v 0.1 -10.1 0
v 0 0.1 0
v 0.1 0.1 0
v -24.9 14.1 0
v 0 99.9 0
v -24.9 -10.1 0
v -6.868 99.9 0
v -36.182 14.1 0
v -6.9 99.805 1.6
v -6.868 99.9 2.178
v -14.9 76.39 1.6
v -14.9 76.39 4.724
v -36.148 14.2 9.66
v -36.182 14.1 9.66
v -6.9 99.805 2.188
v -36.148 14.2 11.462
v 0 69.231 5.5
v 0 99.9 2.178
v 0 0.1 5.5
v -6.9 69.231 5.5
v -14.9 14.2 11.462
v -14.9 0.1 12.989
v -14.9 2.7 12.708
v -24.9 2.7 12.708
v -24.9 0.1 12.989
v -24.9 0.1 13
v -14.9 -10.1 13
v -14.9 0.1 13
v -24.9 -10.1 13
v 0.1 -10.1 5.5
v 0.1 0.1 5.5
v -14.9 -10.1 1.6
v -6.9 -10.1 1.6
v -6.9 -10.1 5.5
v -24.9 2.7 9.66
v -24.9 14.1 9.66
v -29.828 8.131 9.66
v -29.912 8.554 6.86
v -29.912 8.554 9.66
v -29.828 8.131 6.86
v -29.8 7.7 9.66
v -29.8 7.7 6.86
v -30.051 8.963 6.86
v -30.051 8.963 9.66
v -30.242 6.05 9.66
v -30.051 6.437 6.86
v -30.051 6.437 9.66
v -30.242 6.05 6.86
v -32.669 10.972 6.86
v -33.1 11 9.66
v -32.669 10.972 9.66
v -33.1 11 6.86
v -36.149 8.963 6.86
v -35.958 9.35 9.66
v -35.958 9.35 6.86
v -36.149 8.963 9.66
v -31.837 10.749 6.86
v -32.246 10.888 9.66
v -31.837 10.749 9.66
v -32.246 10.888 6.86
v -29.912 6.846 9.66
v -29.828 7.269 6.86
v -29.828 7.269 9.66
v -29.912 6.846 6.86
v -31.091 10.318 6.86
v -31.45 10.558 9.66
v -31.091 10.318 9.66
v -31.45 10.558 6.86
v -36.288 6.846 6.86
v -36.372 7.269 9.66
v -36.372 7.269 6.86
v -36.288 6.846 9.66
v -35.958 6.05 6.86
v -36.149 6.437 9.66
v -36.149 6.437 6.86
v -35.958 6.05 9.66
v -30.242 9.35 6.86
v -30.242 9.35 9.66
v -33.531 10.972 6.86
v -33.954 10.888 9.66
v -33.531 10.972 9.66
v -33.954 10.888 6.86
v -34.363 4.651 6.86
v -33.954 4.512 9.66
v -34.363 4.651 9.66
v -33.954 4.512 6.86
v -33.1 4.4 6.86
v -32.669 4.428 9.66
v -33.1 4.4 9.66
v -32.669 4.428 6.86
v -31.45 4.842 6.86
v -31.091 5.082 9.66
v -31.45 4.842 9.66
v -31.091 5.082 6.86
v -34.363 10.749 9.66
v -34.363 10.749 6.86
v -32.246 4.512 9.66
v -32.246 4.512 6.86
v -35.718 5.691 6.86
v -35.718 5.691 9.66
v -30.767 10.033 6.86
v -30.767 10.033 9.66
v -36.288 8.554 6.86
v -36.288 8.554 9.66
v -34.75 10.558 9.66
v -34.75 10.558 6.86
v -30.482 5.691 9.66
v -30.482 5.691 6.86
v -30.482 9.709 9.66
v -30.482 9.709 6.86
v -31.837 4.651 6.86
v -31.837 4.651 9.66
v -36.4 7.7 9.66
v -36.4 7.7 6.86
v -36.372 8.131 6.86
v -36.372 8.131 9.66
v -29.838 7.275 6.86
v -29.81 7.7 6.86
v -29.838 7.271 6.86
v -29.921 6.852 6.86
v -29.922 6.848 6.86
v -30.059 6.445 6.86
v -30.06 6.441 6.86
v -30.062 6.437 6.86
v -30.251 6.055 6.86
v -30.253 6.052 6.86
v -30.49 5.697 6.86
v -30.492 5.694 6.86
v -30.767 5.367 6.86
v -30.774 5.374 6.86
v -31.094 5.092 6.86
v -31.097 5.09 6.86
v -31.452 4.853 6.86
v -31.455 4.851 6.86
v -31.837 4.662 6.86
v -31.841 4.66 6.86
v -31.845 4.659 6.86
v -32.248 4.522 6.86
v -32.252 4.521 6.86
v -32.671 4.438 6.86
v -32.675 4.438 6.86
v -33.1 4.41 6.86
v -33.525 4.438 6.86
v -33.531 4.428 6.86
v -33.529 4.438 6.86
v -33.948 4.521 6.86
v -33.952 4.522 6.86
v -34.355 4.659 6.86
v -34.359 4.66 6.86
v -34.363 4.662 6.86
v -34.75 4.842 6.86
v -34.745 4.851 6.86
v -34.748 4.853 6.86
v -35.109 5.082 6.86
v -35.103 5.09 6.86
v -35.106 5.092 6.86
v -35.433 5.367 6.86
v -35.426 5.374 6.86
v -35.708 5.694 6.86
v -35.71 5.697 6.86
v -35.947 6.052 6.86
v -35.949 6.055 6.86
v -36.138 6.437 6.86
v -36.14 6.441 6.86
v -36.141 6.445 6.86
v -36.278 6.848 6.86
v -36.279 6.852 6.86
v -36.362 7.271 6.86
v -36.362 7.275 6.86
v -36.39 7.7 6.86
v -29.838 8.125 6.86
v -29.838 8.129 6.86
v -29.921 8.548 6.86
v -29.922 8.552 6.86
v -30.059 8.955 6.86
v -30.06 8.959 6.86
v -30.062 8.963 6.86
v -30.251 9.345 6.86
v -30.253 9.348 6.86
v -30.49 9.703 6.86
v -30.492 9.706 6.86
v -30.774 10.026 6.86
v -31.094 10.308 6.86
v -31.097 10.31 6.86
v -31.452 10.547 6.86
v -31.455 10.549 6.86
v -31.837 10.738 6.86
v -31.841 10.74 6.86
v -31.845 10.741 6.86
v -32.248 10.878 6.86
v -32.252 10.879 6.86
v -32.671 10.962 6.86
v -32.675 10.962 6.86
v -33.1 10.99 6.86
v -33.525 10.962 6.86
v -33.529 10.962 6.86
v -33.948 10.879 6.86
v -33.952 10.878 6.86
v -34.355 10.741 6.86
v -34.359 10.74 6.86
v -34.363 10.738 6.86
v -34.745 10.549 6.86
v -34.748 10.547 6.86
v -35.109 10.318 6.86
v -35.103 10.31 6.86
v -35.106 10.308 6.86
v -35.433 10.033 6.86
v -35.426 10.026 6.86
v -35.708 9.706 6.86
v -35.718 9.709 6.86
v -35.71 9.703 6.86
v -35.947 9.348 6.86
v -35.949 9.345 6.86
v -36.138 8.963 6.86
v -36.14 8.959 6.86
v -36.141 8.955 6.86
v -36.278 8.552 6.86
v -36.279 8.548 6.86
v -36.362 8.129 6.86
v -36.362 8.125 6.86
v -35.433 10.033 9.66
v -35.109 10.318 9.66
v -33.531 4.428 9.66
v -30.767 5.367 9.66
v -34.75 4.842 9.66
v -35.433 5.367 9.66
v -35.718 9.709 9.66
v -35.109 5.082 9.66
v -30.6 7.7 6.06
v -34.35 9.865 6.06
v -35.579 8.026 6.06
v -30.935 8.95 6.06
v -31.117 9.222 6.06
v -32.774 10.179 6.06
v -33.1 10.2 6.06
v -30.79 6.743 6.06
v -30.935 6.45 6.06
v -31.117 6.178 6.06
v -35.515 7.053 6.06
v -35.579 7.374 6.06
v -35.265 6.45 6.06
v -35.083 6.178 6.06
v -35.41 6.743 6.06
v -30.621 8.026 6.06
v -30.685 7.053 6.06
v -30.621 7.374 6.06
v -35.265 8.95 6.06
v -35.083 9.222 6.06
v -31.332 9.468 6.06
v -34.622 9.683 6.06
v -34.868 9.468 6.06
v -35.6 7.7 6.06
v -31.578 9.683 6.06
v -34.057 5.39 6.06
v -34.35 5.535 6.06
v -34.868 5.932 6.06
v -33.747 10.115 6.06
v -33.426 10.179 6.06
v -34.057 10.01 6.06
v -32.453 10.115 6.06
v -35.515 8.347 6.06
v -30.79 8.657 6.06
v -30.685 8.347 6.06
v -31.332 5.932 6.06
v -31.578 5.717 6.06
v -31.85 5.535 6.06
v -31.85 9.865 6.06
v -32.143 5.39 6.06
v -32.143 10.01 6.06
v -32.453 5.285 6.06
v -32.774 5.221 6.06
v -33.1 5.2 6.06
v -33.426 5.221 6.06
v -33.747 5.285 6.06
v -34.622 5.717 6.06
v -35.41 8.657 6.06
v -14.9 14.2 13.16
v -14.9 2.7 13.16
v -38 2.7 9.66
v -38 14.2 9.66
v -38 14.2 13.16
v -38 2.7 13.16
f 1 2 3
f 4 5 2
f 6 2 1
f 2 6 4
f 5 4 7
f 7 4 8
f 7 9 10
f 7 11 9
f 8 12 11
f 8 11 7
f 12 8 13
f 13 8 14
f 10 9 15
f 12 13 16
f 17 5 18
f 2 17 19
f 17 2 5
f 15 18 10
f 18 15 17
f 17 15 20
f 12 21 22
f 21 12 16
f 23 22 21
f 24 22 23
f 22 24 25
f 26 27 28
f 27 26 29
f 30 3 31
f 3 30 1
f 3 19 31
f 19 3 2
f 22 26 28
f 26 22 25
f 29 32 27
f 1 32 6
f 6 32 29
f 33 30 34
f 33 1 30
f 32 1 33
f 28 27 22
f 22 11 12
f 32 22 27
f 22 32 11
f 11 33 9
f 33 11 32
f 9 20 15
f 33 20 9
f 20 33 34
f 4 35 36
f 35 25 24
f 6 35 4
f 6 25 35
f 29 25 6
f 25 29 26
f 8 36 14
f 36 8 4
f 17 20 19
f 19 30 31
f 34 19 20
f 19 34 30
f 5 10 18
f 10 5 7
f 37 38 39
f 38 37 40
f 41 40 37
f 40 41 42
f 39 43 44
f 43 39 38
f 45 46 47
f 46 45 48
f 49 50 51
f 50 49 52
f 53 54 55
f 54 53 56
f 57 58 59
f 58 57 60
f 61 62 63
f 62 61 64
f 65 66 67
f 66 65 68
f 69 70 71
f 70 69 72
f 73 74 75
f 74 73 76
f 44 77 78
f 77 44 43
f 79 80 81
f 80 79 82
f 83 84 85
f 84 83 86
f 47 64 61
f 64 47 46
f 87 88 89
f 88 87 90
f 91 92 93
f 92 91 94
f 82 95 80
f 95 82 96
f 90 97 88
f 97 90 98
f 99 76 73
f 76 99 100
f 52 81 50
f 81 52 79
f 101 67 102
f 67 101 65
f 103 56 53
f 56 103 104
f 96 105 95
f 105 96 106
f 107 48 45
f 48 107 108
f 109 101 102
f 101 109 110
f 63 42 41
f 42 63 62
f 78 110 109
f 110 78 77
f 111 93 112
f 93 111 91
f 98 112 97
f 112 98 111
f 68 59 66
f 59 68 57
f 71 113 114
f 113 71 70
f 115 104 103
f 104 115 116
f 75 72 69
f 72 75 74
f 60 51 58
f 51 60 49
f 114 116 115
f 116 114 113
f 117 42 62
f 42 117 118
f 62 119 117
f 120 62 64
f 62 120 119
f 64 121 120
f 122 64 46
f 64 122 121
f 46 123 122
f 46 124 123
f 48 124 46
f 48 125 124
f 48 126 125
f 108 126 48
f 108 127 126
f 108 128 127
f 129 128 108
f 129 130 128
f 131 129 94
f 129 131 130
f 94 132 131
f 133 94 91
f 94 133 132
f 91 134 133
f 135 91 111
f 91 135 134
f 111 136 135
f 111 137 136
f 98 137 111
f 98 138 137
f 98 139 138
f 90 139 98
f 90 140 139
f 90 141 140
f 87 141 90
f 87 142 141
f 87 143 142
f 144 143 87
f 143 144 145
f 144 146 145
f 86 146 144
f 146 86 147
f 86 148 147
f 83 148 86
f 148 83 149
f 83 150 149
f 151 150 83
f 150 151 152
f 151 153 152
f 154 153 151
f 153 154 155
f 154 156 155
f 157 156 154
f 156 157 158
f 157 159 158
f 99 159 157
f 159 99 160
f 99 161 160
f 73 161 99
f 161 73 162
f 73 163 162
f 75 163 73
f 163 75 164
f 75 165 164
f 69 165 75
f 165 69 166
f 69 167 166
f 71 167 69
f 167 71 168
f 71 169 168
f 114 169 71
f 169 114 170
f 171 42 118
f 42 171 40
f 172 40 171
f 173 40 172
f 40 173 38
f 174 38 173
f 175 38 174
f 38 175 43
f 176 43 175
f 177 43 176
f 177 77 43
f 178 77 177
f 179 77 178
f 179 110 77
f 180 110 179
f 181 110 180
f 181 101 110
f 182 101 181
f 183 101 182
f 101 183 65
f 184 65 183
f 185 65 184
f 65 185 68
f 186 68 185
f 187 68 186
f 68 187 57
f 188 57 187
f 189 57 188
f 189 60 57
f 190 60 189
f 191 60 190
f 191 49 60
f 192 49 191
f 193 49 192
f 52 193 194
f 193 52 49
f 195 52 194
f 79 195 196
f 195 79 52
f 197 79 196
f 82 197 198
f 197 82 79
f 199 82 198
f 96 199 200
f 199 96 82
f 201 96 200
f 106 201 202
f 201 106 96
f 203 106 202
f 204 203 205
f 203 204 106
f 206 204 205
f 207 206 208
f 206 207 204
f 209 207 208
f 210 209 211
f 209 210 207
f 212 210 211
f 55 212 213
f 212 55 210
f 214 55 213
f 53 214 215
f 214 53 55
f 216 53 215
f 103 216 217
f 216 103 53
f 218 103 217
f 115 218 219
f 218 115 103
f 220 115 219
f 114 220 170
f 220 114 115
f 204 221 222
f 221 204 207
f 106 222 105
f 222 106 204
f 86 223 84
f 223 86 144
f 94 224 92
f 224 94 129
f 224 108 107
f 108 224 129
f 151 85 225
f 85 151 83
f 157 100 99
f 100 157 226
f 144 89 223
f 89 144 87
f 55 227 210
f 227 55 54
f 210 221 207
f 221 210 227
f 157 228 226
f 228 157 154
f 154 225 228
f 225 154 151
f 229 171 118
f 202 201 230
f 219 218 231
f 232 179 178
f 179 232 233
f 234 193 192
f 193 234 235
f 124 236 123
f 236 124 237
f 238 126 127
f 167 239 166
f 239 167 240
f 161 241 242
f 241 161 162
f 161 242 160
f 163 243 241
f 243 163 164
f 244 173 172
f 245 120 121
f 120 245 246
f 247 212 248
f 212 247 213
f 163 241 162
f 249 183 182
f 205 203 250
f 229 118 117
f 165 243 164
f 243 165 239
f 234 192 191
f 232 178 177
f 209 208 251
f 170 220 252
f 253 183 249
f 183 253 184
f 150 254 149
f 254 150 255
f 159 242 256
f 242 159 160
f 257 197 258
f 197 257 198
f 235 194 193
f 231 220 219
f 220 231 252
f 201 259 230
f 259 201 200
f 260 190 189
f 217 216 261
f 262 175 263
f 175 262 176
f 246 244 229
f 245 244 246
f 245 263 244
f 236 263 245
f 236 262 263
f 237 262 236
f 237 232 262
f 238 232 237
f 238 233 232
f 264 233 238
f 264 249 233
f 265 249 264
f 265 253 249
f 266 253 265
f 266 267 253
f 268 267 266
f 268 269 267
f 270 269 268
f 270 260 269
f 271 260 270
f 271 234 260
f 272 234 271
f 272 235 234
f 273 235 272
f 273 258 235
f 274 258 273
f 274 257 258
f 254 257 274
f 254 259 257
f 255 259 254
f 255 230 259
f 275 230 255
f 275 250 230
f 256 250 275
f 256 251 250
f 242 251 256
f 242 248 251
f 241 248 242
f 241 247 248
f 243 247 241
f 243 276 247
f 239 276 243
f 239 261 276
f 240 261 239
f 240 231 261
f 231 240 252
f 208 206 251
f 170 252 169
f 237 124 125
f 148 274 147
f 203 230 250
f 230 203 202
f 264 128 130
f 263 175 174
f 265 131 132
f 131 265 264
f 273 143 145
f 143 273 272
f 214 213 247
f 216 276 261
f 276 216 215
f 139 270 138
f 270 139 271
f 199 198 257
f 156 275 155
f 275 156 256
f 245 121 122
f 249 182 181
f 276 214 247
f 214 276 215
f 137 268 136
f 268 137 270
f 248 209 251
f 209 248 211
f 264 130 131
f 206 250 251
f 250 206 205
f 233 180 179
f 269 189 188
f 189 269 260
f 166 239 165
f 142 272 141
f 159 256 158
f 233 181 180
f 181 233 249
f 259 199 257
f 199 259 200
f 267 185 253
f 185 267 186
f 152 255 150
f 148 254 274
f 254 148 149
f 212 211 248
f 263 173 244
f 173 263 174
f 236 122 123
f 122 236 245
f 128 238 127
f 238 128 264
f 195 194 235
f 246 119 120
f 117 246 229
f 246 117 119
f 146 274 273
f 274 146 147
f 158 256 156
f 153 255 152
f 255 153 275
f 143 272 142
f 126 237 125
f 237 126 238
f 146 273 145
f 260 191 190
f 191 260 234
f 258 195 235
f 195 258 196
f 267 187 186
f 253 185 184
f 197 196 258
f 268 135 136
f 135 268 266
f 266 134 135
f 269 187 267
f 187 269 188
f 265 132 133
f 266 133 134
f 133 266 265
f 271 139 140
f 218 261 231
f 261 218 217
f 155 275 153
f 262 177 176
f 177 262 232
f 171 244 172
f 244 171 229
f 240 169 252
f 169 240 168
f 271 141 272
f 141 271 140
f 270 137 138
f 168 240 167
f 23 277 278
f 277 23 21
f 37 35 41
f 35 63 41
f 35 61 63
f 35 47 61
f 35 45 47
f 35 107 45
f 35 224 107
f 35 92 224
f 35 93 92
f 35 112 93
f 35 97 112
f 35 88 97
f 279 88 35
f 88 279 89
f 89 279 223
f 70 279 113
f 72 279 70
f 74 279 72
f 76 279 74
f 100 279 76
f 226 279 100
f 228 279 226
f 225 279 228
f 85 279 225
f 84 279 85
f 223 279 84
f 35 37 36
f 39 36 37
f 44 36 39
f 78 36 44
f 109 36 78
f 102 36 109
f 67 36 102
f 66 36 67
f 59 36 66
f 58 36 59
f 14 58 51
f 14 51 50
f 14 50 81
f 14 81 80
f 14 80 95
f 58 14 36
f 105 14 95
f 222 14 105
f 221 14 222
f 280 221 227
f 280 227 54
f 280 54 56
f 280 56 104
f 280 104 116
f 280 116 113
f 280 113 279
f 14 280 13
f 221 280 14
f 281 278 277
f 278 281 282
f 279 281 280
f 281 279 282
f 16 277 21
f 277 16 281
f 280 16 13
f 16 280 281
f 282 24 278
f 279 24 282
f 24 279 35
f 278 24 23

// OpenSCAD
// =====================================================================
//  Korek narożny pod drzwi prysznicowe – bryła + 2 regulowane wycięcia
//  Układ: A = (0,0) kąt prosty, AB wzdłuż X, AC wzdłuż Y, Z w górę
// =====================================================================

// ---------------- BRYŁA ----------------
a = 41;   // długość krawędzi AB (oś X) [mm]
b = 120;   // długość krawędzi AC (oś Y) [mm]
H = 13;    // wysokość nad krawędzią AB [mm]
g = 10;   // dlugosc korka

// ---------------- PODGLĄD ----------------
pokaz_wyciecia = true;  // true = wycięcia podświetlone na różowo w podglądzie (F5)
                        // w renderze (F6) i eksporcie STL podświetlenie znika
luz = 0.2;              // tolerancja dodawana do szerokości i długości wycięć [mm]

// ---------------- WYCIĘCIE 1: szyba wchodząca od góry ----------------
w1_wlaczone = true;
w1_poz   = [7, -1-g, 1.6];      // [x, y, z] dolnego narożnika wycięcia
                            //   x = odległość od krawędzi AC
                            //   z = dno szczeliny (H - z = głębokość wejścia szyby)
w1_wym   = [7.8, b + 2+g, 20];  // [grubość szyby, długość, wysokość]
                            //   długość i wysokość celowo "na zapas" poza bryłę
w1_obrot = 0;               // obrót wokół osi Z względem narożnika [°]

// ---------------- WYCIĘCIE 2: od krawędzi AB ----------------
// Wcięcie typu "U" wchodzące od krawędzi AB (y = 0) w głąb bryły.
w2_wlaczone = true;
w2_poz   = [25, -1-g, -1];    // [x, y, z] dolnego narożnika wycięcia
                            //   y = -1, żeby wycięcie wychodziło poza krawędź
w2_wym   = [20, 15+g, H + 2];   // [szerokość, głębokość w bryłę + 1, wysokość]
                            //   wysokość H+2 = przelotowo; zmniejsz dla wcięcia częściowego
w2_obrot = 0;               // obrót wokół osi Z względem narożnika [°]

// -- wyciecie 3 na koło
w3_wlaczone = true;
w3_poz   = [0, 0-g, 5.5];      // [x, y, z] dolnego narożnika wycięcia
                            //   x = odległość od krawędzi AC
                            //   z = dno szczeliny (H - z = głębokość wejścia szyby)
w3_wym   = [7.8, b + 2+g, 20];  // [grubość szyby, długość, wysokość]
                            //   długość i wysokość celowo "na zapas" poza bryłę
w3_obrot = 0;               // obrót wokół osi Z względem narożnika [°]


// w4 - sciecie z przodu
w4_wlaczone = true;
w4_poz   = [0, b-20, -1];    // [x, y, z] dolnego narożnika wycięcia
                            //   y = -1, żeby wycięcie wychodziło poza krawędź
w4_wym   = [20, 20, H + 2];   // [szerokość, głębokość w bryłę + 1, wysokość]
                            //   wysokość H+2 = przelotowo; zmniejsz dla wcięcia częściowego
w4_obrot = 0;               // obrót wokół osi Z względem narożnika [°]


// ---------------- NADLOZENIA ----------------

// n1 - wydluzenie do srodka wneki
n1_wlaczone = true;
n1_poz   = [0, 0-g, 0];      // [x, y, z] dolnego narożnika wycięcia
                            //   x = odległość od krawędzi AC
                            //   z = dno szczeliny (H - z = głębokość wejścia szyby)
n1_wym   = [a, g, H];  // [grubość szyby, długość, wysokość]
                            //   długość i wysokość celowo "na zapas" poza bryłę
n1_obrot = 0;               // obrót wokół osi Z względem narożnika [°]

// --------------- ZACZEP ---------------------

z_wlaczone = true;
z_wym      = [23.1, 11.5, 3.5];   // [X, Y, Z] prostopadłościanu [mm]
z_cyl_d    = 6.6;             // średnica cylindra [mm]
z_cyl_l    = 3.6;             // o ile cylinder wystaje ponad prostopadłościan [mm]
z_cyl_poz  = [4.9, 5.0];        // [x, y] środka cylindra na górnej ścianie
                            //   (domyślnie środek ściany 10 x 10)
z_fazka    = 0.8;           // fazka na końcu cylindra, ułatwia wejście (0 = brak)
z_fn       = 48;            // gładkość cylindra

// Umieszczenie w docelowym modelu
z_poz      = [38, 1+1.7, 8+2+3.16];     // [x, y, z] przesunięcie całego zaczepu
z_obrot    = [0, 180, 0];     // [x, y, z] obrót całego zaczepu [°]

// =====================================================================

module bryla() {
    polyhedron(
        points = [[0,0,0], [a,0,0], [0,b,0], [0,0,H], [a,0,H]],
        faces  = [[0,1,2], [0,3,4,1], [0,2,3], [1,4,2], [3,2,4]]
    );
}

// Prostopadłościan powiększony o luz w X i Y (symetrycznie), bez zmiany Z
module wyciecie(poz, wym, obrot) {
    translate(poz)
        rotate([0, 0, obrot])
            translate([-luz/2, -luz/2, 0])
                cube(wym + [luz, luz, 0]);
}

module wyciecia() {
    if (w1_wlaczone) wyciecie(w1_poz, w1_wym, w1_obrot);
    if (w2_wlaczone) wyciecie(w2_poz, w2_wym, w2_obrot);
    if (w3_wlaczone) wyciecie(w3_poz, w3_wym, w3_obrot);
    if (w4_wlaczone) wyciecie(w4_poz, w4_wym, w4_obrot);
}

module zaczep(wym = z_wym, d = z_cyl_d, l = z_cyl_l,
              cpoz = z_cyl_poz, fazka = z_fazka) {
    e = 0.01;  // zakładka, żeby bryły się na pewno połączyły
    union() {
        cube(wym);
        translate([cpoz[0], cpoz[1], wym[2] - e]) {
            cylinder(d = d, h = l - fazka + e, $fn = z_fn);
            if (fazka > 0)
                translate([0, 0, l - fazka])
                    cylinder(d1 = d, d2 = d - 2 * fazka, h = fazka + e, $fn = z_fn);
        }
    }
}


// ---------------- ODBICIE LUSTRZANE ----------------
lustro     = true;      // true = odbij całość (bryłę razem z wycięciami)
lustro_os  = [1, 0, 0]; // [1,0,0] = lewo-prawo (odbicie względem płaszczyzny YZ)
                        // [0,1,0] = przód-tył (względem płaszczyzny XZ)

module calosc() {
    union() {
    difference() {
        union() {
            bryla();
            if (n1_wlaczone) wyciecie(n1_poz, n1_wym, n1_obrot);
            
        }
        if (pokaz_wyciecia) #wyciecia();
        else                 wyciecia();
    }
    if (z_wlaczone) translate(z_poz) rotate(z_obrot) zaczep();
    }
}

if (lustro) mirror(lustro_os) calosc();
else        calosc();
